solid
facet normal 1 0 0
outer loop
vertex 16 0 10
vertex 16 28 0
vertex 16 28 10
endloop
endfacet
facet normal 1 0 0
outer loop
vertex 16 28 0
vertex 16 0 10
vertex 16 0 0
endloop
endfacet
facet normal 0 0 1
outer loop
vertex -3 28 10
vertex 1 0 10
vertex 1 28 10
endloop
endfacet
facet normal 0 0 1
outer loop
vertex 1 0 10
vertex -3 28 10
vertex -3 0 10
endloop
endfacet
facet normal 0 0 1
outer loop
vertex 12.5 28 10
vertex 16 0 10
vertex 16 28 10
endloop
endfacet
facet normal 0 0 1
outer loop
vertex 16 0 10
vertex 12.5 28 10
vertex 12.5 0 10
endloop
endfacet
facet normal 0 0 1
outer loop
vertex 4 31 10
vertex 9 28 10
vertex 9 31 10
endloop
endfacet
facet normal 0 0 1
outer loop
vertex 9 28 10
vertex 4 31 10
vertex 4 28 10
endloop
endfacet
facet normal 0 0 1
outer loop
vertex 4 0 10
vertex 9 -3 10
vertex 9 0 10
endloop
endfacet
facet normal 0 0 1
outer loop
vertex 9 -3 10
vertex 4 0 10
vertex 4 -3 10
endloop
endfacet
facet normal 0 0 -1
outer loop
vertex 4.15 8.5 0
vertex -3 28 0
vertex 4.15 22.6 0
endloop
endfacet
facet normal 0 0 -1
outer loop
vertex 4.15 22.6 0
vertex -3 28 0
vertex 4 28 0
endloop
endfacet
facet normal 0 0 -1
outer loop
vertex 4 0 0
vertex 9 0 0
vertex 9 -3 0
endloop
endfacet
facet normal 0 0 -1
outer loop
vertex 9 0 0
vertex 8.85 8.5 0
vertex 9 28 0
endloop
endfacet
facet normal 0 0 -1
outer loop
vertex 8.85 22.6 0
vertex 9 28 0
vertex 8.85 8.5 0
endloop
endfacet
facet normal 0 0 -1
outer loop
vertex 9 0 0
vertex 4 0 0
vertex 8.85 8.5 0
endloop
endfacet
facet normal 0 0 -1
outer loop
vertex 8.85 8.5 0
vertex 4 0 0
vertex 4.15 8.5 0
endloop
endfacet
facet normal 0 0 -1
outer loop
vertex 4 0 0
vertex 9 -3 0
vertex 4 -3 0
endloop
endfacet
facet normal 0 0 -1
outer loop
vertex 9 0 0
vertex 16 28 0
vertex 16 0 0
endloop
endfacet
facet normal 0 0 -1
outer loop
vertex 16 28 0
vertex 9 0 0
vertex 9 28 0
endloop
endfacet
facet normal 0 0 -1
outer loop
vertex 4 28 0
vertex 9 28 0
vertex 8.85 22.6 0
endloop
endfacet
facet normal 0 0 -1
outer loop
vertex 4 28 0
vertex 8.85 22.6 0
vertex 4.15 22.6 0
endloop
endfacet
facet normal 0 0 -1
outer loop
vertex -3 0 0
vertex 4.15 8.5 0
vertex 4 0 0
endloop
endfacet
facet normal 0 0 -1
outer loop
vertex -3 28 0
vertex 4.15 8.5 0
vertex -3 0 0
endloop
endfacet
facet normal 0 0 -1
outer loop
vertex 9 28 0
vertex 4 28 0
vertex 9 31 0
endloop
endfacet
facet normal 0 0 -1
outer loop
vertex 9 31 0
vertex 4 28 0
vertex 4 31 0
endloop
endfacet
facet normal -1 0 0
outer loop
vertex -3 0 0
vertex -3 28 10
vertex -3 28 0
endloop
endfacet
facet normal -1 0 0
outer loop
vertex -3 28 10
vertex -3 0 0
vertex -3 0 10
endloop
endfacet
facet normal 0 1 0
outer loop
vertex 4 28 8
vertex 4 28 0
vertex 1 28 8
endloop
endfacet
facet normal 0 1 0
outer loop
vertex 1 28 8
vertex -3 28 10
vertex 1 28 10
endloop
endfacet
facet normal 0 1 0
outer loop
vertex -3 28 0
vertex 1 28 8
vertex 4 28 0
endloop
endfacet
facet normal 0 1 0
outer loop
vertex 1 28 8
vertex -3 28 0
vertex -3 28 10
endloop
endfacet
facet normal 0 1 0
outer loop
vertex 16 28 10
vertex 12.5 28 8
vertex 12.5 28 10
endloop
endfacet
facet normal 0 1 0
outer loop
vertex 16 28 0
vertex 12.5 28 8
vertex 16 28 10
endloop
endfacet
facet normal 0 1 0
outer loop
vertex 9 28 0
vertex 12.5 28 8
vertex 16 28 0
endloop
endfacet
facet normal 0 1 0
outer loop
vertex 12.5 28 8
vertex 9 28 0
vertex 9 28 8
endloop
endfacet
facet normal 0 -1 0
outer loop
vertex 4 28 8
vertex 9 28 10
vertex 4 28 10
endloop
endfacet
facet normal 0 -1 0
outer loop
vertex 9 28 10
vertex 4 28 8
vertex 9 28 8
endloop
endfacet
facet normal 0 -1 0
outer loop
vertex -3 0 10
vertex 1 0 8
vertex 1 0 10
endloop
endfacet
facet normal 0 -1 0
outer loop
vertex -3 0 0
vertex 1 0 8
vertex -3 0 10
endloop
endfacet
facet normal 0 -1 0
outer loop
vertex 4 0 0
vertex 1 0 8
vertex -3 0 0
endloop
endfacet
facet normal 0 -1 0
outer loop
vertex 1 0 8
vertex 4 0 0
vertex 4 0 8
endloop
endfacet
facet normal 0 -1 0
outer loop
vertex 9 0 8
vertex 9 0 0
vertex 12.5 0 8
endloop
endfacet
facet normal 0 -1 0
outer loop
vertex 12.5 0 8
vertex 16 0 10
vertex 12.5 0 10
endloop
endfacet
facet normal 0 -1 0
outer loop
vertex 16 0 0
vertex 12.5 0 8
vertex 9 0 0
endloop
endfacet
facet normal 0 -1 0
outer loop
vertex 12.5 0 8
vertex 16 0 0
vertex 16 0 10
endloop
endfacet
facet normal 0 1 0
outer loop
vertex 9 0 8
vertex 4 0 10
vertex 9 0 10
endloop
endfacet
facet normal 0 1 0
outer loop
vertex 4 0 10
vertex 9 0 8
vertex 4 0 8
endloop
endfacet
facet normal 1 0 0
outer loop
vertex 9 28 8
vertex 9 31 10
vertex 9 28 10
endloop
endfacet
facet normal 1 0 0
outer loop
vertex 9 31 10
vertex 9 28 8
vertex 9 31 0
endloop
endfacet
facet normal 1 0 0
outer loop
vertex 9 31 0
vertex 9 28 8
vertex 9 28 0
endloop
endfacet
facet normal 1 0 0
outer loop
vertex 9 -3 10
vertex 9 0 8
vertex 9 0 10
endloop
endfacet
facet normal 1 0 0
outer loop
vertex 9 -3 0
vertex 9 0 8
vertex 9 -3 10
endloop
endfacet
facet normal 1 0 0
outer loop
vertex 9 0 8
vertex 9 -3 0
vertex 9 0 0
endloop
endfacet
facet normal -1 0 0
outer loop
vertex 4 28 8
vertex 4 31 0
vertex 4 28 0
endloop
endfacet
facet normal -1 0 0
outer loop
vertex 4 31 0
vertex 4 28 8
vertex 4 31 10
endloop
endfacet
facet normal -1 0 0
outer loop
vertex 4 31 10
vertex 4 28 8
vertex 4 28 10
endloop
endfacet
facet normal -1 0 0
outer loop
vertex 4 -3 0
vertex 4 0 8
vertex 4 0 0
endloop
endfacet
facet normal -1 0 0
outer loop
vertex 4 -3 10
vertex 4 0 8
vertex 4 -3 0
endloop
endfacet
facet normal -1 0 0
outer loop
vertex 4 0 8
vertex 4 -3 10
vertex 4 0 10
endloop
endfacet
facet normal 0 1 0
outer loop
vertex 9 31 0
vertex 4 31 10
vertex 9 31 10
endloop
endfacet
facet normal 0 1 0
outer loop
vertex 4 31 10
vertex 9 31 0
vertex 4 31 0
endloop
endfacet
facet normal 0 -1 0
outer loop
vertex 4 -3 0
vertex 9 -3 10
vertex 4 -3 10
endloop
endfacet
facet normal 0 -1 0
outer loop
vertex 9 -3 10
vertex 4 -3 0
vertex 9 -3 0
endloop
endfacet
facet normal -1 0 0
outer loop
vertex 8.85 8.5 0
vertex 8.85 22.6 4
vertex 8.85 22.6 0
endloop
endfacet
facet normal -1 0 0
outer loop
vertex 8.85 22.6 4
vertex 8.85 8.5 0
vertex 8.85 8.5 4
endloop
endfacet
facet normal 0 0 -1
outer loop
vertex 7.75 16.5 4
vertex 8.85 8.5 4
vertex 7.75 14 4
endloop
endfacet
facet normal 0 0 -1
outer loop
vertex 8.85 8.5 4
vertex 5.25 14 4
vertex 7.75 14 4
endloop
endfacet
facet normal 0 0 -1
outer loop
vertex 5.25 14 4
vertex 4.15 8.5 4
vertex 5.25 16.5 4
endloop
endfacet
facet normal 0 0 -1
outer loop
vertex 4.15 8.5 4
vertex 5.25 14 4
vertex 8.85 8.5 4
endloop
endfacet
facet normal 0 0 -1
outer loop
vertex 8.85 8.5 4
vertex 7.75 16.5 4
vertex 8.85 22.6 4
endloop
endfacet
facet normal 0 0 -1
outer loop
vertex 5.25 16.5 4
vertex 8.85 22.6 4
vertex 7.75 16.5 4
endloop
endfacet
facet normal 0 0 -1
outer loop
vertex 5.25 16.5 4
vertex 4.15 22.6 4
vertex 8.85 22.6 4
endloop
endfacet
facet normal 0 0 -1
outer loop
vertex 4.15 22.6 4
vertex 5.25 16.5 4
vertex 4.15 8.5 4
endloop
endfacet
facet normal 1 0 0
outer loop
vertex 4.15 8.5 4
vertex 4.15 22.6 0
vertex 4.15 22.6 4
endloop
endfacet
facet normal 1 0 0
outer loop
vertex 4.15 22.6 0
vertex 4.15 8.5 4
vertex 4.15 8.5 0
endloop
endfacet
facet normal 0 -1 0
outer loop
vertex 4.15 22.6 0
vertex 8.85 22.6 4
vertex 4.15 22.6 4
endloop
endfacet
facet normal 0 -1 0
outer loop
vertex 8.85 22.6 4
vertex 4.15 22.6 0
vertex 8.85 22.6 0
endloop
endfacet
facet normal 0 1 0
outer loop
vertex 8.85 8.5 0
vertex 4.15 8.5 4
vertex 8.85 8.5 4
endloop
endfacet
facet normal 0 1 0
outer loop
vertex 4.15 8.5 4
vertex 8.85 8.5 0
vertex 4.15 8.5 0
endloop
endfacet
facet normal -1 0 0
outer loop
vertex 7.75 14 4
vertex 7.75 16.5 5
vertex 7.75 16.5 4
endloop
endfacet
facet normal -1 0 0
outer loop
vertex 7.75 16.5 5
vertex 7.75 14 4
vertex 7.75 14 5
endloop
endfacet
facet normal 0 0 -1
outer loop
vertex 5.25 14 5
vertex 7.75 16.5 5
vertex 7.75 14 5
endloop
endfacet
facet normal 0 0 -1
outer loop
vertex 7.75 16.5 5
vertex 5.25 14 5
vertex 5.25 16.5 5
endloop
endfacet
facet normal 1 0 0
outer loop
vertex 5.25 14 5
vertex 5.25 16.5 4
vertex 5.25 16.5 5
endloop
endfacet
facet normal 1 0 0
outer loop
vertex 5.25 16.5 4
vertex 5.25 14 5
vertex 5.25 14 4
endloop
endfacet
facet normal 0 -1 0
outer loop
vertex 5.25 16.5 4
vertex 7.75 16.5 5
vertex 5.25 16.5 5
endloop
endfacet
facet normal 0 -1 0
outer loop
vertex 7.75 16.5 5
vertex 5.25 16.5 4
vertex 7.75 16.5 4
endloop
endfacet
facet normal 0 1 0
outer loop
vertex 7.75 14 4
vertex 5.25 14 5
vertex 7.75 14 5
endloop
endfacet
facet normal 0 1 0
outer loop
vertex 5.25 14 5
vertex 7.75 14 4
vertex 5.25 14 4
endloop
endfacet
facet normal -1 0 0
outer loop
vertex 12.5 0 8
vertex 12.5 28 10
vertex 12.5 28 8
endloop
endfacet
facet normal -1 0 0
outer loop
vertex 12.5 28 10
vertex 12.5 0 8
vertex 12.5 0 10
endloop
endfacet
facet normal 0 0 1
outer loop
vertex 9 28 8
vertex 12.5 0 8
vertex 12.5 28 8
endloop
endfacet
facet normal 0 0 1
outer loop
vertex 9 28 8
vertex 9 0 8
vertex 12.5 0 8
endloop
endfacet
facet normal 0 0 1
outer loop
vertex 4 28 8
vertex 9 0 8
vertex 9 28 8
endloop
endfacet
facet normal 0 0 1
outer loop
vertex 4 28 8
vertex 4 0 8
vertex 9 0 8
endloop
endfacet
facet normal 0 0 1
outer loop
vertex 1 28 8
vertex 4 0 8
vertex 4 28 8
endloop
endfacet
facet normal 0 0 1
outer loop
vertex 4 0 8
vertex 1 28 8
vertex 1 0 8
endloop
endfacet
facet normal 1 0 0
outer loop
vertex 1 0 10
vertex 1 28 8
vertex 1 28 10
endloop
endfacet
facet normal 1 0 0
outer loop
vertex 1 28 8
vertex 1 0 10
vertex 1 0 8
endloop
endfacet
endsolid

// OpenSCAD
    wiggle = 1;
    travel = 2;
    
    swb_x = 3.7;//4.5;
    swb_y = 9.1;//10;
    swb_z = 3.5;//5;
    
    tip_x = 1.5;//2;
    tip_y = 1.5;//2;
    tip_z = 2;

    tile_x = 11.5;
    tile_y = 28; 
    tile_z = 4;
    outerLip = 2;

difference(){
    color("black",alpha=0.6) positives();
    negatives();
}
 
module positives(){
//translate([0,0,0]) cube([tile_x+outerLip,tile_y+outerLip,10]);
    translate([-3,0,0]) cube([19,28,10]);
    translate([4,-3,0]) cube([5,34,10]);
}
  
module negatives(){
    //tile_x = 10;
    //tile_y = 26;
    //tile_z = 4;
    //Full switch body:
    translate([(tile_x+outerLip)/2-swb_x/2-wiggle/2-0.25,12.5-2-2,0-wiggle/2]) cube([swb_x+wiggle,swb_y+wiggle+travel+2,swb_z+wiggle]);
    //Toggle handle:
    translate([(tile_x+outerLip)/2-wiggle/2-tip_x/2-0.25,(tile_y+outerLip)/2-0-wiggle/2-travel/2+3.5-1-2,swb_z-wiggle/2]) cube([tip_x+wiggle,tip_y+wiggle,tip_z]);
    //Tile inset:
    translate([outerLip/2,outerLip/2-1,10-2]) cube([tile_x,tile_y,tile_z]);
}
